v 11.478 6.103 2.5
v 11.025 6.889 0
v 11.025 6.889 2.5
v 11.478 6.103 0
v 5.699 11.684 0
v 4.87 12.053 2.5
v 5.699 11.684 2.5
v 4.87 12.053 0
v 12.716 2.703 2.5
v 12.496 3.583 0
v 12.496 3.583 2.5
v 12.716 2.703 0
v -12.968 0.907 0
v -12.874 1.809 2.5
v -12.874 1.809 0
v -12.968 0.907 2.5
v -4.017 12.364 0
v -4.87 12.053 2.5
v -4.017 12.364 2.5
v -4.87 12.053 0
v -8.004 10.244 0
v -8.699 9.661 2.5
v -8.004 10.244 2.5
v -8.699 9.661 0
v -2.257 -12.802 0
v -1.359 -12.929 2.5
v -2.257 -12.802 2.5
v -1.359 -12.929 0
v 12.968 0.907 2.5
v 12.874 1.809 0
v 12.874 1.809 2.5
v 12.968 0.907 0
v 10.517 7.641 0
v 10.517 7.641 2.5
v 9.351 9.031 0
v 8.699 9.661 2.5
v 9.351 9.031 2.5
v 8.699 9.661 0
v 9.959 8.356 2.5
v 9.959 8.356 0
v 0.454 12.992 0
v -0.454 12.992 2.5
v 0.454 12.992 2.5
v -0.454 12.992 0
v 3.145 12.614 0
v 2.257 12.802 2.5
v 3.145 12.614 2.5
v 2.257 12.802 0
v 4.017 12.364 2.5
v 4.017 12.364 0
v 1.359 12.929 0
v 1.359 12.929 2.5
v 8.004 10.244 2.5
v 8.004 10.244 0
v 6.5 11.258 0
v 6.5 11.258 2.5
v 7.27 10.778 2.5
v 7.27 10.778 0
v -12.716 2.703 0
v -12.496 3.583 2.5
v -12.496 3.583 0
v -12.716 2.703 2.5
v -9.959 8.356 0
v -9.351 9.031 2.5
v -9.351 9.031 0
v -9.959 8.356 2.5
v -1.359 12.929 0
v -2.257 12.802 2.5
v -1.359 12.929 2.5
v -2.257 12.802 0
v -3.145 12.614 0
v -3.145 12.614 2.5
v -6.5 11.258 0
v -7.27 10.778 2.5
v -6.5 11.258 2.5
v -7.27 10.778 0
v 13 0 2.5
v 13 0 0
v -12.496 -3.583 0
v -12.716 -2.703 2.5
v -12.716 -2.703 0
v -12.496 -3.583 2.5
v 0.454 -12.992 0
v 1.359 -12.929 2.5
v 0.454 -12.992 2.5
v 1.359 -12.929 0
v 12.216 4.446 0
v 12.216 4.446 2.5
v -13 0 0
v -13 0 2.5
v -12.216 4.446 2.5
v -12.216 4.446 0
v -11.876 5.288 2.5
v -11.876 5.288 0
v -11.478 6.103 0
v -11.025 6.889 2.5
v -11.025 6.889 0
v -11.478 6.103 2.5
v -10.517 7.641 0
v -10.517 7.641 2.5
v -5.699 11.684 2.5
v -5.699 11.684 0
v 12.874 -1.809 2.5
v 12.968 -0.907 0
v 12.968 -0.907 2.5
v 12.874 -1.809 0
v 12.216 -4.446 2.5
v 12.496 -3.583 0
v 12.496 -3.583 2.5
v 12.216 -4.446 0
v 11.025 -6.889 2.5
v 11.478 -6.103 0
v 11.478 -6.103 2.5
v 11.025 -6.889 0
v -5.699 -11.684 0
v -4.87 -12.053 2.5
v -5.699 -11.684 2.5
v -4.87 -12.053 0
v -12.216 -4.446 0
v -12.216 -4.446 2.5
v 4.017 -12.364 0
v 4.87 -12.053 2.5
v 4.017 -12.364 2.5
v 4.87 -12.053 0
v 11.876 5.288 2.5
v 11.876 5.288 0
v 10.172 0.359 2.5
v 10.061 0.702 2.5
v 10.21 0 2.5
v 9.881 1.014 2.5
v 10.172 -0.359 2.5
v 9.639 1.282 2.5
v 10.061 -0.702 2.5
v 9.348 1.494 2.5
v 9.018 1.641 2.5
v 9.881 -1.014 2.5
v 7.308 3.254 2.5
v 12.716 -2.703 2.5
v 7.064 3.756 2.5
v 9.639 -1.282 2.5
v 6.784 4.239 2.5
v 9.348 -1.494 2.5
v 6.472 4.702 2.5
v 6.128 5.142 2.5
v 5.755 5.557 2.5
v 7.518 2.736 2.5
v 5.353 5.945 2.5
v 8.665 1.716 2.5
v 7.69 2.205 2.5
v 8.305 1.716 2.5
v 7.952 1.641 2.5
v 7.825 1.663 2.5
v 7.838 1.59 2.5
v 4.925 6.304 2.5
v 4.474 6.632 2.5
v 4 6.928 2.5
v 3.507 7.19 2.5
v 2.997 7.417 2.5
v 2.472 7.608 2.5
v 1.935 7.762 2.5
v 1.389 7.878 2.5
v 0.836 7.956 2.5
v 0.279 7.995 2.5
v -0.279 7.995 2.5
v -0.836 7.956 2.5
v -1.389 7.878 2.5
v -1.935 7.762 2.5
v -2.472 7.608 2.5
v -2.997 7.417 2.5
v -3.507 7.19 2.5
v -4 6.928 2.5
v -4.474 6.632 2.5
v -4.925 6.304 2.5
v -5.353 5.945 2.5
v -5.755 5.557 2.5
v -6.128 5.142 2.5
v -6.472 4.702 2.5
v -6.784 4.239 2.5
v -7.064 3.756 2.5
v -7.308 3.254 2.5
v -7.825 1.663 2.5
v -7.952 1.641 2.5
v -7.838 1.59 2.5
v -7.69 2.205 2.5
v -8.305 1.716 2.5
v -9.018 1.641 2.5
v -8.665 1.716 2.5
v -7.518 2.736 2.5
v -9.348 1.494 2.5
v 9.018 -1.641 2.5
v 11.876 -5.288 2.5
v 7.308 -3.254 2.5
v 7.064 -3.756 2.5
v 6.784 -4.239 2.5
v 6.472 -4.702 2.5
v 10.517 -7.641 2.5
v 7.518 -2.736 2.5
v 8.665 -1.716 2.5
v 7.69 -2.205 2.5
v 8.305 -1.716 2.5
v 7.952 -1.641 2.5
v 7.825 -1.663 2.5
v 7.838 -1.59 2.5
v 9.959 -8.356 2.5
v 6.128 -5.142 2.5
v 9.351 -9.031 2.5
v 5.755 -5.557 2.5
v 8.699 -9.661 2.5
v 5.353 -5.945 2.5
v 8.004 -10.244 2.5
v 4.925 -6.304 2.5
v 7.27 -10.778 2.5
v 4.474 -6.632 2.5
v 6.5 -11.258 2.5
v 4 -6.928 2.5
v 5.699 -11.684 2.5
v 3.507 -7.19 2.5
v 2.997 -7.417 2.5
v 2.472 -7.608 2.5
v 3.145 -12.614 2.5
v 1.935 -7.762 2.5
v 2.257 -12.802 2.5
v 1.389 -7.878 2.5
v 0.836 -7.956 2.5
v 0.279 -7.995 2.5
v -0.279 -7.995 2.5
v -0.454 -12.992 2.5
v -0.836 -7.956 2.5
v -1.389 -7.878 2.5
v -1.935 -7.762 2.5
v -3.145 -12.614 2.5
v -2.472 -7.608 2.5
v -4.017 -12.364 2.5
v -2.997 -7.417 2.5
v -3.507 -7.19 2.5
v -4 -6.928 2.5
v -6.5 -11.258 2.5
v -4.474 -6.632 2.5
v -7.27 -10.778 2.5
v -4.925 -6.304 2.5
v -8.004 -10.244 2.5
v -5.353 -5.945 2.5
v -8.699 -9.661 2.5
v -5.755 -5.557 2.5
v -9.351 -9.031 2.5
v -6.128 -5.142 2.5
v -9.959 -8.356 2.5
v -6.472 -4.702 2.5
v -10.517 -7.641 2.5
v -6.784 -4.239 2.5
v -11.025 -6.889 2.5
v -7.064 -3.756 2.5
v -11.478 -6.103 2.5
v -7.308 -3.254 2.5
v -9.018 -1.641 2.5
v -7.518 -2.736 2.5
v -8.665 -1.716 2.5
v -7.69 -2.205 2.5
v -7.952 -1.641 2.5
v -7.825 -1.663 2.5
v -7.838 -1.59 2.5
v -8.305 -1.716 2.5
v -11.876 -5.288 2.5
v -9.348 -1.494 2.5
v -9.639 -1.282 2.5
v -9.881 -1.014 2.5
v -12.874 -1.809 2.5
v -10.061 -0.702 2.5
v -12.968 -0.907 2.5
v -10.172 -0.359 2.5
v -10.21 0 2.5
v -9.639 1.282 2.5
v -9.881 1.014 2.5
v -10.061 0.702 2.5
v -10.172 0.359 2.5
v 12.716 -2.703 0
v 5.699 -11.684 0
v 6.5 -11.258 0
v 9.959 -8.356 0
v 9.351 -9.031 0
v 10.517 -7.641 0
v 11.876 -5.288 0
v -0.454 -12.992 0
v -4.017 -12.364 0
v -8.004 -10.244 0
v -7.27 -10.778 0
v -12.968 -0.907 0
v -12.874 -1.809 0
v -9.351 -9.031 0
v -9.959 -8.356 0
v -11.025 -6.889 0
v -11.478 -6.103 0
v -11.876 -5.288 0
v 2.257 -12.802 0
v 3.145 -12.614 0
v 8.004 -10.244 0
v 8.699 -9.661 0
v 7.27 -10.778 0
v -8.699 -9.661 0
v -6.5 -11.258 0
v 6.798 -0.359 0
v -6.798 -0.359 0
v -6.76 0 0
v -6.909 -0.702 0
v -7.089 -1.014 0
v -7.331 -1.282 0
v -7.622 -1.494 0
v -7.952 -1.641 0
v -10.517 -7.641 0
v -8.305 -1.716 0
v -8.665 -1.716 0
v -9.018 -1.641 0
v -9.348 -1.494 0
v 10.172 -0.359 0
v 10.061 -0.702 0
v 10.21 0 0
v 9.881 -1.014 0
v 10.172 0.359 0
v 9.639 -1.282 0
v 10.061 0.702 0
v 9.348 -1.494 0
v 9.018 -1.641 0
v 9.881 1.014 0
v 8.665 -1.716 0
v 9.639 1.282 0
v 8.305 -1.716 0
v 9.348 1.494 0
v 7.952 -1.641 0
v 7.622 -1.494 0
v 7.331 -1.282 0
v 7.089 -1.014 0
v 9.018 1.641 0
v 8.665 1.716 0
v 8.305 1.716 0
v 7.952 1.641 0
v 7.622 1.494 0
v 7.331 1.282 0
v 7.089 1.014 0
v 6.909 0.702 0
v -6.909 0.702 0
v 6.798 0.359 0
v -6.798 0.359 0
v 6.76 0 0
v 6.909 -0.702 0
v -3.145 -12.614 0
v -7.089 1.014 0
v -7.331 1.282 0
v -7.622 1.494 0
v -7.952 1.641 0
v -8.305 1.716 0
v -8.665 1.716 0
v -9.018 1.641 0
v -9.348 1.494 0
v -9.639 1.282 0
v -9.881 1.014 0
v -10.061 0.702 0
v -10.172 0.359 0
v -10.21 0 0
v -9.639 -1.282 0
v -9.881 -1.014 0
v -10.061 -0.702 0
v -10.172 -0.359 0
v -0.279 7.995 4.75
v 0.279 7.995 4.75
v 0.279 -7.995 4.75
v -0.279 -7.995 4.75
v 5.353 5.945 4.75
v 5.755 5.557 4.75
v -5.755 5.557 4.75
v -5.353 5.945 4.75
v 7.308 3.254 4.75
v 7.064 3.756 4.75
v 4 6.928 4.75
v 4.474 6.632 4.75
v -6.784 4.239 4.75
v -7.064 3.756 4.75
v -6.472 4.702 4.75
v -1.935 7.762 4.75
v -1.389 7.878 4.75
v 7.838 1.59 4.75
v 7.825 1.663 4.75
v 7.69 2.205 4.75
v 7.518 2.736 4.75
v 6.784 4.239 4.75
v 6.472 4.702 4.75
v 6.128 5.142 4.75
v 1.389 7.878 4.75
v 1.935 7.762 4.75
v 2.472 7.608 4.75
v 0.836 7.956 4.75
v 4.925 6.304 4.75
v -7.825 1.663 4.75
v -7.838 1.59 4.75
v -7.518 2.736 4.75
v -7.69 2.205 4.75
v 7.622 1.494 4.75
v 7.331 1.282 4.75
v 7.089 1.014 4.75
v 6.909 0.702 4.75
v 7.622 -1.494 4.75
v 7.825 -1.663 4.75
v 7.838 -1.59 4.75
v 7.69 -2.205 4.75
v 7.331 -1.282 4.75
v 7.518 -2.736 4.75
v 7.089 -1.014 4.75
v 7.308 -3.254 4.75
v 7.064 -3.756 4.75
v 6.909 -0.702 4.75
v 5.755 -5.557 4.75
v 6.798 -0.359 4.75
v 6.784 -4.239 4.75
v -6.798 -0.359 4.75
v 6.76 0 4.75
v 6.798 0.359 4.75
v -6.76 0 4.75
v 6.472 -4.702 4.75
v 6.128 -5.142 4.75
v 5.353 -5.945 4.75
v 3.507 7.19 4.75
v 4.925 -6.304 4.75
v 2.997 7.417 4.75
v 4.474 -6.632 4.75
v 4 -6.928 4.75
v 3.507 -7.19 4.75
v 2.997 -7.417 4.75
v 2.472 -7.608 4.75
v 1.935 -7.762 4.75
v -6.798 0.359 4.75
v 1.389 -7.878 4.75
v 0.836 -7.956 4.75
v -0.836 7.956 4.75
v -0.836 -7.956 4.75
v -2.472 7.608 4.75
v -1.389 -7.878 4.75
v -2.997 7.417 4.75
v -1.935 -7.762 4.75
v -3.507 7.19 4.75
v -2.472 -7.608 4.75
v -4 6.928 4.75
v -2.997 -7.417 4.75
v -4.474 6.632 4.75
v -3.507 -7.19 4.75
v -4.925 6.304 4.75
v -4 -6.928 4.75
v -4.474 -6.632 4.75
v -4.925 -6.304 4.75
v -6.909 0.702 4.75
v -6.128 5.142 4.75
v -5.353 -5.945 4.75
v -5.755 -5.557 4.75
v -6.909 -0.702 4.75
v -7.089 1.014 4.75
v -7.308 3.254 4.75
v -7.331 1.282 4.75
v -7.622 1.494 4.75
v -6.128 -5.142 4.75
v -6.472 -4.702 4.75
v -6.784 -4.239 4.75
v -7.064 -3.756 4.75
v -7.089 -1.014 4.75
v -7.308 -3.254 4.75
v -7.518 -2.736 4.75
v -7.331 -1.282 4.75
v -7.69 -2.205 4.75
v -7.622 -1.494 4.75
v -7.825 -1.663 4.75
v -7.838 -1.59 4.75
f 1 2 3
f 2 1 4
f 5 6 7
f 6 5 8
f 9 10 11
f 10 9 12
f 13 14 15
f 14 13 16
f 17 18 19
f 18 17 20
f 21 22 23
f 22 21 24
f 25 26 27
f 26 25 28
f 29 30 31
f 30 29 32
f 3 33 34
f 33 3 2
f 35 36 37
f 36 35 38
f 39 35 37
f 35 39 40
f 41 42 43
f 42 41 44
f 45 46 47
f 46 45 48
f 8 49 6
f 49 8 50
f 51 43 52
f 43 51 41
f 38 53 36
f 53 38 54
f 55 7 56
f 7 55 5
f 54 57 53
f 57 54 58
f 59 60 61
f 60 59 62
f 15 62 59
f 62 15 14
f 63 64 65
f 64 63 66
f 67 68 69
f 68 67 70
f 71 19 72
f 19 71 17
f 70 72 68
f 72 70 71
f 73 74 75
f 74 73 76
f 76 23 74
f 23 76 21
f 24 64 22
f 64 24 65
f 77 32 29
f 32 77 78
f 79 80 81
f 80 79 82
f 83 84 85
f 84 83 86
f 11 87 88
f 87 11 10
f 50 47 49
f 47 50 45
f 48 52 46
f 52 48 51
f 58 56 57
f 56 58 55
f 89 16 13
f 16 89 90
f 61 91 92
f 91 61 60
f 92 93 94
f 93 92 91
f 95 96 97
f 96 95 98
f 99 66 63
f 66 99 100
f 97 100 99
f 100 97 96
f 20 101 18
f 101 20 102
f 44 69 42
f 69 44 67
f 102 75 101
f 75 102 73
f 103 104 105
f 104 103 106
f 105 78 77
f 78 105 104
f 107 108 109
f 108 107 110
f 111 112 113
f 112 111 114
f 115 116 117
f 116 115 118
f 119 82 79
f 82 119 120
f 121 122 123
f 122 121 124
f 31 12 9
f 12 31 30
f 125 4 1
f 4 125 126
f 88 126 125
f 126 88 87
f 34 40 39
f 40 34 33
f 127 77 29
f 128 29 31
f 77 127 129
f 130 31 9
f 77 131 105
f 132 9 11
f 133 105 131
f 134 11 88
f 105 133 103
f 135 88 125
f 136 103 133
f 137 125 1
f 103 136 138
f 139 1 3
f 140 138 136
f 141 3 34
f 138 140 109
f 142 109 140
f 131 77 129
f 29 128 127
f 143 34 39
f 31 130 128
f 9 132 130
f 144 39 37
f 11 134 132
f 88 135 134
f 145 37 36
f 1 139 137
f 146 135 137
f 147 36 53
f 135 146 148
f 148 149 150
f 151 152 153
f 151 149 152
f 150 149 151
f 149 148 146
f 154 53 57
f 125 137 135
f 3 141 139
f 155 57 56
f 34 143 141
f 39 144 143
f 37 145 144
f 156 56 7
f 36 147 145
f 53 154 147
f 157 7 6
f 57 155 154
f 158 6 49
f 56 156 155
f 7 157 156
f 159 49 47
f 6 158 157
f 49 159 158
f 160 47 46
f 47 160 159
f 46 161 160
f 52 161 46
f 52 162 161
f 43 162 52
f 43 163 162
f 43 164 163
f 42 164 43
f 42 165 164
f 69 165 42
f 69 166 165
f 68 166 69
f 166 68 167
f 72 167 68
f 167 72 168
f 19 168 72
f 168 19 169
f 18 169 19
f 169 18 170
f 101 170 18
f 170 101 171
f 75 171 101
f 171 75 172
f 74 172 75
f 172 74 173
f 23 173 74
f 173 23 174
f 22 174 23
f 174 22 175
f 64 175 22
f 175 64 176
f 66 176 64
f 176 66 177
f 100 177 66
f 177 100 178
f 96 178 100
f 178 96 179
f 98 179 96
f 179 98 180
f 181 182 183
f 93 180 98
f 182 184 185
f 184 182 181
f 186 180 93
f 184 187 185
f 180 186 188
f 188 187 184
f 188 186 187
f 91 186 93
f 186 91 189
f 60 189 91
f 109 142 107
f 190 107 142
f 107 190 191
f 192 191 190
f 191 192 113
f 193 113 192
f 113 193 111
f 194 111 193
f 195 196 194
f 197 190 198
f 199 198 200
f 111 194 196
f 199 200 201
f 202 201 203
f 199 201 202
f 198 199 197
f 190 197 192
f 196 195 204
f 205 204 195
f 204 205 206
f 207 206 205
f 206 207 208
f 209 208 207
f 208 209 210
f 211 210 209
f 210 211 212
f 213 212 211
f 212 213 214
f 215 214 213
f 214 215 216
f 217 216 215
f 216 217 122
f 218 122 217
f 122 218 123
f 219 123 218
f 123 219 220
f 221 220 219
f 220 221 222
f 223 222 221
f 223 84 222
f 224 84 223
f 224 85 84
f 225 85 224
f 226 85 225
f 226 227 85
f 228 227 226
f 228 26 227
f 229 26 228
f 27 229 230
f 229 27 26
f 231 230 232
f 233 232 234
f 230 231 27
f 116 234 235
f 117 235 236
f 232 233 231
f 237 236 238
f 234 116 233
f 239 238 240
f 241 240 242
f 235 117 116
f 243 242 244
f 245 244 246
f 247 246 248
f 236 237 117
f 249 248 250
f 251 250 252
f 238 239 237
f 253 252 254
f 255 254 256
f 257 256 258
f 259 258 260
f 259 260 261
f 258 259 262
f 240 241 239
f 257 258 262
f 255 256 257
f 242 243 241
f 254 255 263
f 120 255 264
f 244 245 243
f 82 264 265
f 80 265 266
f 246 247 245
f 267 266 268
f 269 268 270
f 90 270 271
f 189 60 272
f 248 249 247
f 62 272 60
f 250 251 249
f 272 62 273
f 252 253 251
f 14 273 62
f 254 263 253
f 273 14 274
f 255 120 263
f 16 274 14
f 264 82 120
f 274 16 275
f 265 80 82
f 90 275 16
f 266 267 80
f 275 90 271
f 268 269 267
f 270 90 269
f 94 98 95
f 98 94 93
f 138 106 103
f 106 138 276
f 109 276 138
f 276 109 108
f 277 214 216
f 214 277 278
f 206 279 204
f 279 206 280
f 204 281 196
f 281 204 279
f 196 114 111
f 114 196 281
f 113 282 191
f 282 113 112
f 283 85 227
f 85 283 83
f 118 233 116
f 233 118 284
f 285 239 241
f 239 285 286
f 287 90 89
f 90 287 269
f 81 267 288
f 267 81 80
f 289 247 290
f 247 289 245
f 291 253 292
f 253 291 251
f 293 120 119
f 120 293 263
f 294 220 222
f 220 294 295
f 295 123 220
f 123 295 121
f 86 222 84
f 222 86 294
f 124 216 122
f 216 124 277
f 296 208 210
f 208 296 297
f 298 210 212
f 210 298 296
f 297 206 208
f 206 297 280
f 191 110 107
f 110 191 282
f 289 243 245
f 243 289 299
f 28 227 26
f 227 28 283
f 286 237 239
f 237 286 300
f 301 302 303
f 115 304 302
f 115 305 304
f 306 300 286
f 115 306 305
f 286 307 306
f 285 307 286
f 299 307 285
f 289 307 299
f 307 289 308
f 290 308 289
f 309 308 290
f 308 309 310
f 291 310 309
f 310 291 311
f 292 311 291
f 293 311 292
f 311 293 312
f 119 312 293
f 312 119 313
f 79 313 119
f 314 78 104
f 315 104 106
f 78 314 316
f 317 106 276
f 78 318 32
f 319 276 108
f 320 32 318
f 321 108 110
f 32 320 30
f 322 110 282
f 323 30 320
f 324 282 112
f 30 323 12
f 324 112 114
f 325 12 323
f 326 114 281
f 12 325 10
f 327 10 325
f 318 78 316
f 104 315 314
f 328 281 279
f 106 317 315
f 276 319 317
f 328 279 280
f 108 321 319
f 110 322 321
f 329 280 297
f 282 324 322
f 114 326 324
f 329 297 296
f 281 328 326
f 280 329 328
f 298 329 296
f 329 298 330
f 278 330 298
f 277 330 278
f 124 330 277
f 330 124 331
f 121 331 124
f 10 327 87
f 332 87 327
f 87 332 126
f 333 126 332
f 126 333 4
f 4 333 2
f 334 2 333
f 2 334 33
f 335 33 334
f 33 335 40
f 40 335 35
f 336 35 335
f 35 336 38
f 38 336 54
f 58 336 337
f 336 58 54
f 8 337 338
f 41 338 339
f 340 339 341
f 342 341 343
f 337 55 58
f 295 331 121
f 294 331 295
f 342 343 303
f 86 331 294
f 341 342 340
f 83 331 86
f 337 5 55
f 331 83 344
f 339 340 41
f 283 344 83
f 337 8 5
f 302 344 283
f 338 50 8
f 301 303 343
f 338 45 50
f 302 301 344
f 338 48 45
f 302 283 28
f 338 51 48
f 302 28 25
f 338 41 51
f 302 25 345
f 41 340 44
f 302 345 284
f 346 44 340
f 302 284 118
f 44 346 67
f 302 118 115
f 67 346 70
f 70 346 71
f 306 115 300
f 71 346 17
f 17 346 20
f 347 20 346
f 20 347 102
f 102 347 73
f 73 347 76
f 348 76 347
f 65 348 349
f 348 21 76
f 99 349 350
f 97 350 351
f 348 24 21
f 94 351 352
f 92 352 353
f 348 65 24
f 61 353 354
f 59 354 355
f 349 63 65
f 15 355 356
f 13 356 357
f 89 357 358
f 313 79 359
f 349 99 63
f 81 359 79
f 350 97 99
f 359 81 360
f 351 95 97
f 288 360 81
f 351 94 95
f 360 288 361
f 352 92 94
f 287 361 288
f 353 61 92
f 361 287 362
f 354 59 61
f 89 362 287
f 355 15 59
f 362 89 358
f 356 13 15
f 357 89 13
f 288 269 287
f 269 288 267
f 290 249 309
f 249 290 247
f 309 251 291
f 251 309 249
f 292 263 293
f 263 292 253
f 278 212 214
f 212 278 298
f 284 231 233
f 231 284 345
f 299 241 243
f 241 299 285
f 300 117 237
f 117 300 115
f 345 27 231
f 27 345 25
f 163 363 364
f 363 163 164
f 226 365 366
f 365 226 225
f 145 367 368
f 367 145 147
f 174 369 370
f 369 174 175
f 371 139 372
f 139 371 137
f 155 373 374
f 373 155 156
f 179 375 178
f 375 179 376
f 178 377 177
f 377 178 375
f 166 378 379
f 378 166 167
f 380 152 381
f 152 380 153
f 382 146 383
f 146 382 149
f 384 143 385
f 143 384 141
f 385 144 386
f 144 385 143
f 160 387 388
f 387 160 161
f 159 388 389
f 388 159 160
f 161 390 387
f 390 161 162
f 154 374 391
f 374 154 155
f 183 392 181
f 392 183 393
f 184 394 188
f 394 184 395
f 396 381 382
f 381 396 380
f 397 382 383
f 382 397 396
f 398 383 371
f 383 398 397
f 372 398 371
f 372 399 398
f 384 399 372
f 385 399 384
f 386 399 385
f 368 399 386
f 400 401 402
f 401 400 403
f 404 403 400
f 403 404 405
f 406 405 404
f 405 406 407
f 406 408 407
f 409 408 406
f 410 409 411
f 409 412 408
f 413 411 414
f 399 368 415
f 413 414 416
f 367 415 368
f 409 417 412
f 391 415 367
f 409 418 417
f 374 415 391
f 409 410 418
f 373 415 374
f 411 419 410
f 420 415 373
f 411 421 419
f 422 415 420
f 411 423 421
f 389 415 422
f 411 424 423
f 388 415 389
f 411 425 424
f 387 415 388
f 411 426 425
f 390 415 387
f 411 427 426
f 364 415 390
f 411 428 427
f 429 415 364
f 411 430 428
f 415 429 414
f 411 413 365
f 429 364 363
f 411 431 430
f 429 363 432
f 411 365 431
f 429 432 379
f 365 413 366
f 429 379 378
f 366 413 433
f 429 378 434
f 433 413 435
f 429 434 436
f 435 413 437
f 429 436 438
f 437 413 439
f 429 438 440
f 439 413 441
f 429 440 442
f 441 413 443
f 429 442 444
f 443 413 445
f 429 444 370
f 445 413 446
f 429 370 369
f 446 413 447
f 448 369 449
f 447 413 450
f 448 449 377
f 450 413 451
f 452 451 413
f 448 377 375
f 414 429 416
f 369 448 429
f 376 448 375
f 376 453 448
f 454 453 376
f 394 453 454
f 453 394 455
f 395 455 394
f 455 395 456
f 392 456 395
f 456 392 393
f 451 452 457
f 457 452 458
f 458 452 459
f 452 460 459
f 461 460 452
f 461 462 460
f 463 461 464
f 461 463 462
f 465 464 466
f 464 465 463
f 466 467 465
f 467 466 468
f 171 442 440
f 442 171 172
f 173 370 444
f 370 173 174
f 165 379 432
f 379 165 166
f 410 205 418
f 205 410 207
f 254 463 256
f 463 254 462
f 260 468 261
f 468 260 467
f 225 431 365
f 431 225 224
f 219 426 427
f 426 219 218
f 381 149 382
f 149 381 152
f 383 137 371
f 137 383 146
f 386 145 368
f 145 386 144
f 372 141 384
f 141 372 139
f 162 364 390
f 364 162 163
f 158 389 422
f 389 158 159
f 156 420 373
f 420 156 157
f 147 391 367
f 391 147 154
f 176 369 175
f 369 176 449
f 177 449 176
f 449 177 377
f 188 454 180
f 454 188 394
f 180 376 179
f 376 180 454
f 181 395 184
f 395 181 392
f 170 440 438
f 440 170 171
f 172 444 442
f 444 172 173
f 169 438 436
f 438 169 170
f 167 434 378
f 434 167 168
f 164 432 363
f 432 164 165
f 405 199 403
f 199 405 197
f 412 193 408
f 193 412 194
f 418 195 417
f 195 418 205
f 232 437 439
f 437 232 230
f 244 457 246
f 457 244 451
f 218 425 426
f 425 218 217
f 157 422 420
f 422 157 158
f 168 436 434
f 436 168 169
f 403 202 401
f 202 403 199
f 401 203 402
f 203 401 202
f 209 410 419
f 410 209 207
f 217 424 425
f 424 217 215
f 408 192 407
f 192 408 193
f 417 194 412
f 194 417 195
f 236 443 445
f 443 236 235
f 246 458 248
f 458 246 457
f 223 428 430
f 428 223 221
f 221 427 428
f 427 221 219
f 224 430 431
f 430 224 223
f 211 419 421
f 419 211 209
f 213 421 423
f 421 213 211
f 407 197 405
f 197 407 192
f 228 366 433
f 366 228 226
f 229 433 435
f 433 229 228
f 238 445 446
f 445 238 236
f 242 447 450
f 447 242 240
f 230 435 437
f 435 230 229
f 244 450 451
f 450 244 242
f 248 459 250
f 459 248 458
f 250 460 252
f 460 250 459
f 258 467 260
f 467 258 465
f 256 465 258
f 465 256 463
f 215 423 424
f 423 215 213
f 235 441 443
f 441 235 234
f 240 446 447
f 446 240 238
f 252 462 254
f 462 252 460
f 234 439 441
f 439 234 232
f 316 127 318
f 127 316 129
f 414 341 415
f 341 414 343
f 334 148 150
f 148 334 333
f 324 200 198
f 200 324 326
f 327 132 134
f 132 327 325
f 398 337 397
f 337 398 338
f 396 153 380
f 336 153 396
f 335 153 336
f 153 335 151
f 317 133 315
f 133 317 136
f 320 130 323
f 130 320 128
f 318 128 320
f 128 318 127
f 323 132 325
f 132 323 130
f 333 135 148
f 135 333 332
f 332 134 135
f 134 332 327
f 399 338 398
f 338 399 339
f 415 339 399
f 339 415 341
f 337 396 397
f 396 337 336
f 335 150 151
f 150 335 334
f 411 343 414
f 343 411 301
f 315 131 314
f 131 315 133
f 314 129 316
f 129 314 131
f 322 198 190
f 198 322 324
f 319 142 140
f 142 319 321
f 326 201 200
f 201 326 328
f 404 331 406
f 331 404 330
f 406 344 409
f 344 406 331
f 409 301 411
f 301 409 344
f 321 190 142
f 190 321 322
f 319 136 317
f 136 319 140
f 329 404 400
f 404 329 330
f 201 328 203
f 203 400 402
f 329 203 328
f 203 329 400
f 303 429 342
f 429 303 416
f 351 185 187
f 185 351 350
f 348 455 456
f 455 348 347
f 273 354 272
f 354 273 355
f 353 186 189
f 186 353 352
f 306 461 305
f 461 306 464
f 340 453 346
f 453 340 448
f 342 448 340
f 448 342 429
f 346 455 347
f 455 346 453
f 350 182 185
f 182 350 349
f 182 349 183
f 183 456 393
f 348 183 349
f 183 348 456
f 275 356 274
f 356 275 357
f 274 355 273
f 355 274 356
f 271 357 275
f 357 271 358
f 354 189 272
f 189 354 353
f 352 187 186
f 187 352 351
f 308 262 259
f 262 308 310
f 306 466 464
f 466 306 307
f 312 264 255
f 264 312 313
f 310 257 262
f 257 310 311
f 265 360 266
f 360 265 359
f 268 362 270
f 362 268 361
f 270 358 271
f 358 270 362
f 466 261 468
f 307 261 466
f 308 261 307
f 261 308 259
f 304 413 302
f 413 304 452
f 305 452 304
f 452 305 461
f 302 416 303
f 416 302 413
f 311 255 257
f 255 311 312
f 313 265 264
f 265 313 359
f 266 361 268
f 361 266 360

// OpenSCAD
// Project: BigBox v2
// Part:    z_axis_guide_bottom_cap (x4)
// Author:  Grigori Palamartšuk <grigori.palamarchuk@gmail.com>
// Source:  http://bigbox.lecktor.ee

module body()
{
    cylinder(h=2.5,r=13,$fn=90);
    translate([0,0,2.5]) cylinder(h=2.25,r=8,$fn=90);
}

module holes()
{    
    // screw holes
    translate([8.485,0,0]) cylinder(h=4.75,r=1.725,$fn=30);
    translate([-8.485,0,0]) cylinder(h=4.75,r=1.725,$fn=30);
}

difference()
{
    body();
    holes();
}
